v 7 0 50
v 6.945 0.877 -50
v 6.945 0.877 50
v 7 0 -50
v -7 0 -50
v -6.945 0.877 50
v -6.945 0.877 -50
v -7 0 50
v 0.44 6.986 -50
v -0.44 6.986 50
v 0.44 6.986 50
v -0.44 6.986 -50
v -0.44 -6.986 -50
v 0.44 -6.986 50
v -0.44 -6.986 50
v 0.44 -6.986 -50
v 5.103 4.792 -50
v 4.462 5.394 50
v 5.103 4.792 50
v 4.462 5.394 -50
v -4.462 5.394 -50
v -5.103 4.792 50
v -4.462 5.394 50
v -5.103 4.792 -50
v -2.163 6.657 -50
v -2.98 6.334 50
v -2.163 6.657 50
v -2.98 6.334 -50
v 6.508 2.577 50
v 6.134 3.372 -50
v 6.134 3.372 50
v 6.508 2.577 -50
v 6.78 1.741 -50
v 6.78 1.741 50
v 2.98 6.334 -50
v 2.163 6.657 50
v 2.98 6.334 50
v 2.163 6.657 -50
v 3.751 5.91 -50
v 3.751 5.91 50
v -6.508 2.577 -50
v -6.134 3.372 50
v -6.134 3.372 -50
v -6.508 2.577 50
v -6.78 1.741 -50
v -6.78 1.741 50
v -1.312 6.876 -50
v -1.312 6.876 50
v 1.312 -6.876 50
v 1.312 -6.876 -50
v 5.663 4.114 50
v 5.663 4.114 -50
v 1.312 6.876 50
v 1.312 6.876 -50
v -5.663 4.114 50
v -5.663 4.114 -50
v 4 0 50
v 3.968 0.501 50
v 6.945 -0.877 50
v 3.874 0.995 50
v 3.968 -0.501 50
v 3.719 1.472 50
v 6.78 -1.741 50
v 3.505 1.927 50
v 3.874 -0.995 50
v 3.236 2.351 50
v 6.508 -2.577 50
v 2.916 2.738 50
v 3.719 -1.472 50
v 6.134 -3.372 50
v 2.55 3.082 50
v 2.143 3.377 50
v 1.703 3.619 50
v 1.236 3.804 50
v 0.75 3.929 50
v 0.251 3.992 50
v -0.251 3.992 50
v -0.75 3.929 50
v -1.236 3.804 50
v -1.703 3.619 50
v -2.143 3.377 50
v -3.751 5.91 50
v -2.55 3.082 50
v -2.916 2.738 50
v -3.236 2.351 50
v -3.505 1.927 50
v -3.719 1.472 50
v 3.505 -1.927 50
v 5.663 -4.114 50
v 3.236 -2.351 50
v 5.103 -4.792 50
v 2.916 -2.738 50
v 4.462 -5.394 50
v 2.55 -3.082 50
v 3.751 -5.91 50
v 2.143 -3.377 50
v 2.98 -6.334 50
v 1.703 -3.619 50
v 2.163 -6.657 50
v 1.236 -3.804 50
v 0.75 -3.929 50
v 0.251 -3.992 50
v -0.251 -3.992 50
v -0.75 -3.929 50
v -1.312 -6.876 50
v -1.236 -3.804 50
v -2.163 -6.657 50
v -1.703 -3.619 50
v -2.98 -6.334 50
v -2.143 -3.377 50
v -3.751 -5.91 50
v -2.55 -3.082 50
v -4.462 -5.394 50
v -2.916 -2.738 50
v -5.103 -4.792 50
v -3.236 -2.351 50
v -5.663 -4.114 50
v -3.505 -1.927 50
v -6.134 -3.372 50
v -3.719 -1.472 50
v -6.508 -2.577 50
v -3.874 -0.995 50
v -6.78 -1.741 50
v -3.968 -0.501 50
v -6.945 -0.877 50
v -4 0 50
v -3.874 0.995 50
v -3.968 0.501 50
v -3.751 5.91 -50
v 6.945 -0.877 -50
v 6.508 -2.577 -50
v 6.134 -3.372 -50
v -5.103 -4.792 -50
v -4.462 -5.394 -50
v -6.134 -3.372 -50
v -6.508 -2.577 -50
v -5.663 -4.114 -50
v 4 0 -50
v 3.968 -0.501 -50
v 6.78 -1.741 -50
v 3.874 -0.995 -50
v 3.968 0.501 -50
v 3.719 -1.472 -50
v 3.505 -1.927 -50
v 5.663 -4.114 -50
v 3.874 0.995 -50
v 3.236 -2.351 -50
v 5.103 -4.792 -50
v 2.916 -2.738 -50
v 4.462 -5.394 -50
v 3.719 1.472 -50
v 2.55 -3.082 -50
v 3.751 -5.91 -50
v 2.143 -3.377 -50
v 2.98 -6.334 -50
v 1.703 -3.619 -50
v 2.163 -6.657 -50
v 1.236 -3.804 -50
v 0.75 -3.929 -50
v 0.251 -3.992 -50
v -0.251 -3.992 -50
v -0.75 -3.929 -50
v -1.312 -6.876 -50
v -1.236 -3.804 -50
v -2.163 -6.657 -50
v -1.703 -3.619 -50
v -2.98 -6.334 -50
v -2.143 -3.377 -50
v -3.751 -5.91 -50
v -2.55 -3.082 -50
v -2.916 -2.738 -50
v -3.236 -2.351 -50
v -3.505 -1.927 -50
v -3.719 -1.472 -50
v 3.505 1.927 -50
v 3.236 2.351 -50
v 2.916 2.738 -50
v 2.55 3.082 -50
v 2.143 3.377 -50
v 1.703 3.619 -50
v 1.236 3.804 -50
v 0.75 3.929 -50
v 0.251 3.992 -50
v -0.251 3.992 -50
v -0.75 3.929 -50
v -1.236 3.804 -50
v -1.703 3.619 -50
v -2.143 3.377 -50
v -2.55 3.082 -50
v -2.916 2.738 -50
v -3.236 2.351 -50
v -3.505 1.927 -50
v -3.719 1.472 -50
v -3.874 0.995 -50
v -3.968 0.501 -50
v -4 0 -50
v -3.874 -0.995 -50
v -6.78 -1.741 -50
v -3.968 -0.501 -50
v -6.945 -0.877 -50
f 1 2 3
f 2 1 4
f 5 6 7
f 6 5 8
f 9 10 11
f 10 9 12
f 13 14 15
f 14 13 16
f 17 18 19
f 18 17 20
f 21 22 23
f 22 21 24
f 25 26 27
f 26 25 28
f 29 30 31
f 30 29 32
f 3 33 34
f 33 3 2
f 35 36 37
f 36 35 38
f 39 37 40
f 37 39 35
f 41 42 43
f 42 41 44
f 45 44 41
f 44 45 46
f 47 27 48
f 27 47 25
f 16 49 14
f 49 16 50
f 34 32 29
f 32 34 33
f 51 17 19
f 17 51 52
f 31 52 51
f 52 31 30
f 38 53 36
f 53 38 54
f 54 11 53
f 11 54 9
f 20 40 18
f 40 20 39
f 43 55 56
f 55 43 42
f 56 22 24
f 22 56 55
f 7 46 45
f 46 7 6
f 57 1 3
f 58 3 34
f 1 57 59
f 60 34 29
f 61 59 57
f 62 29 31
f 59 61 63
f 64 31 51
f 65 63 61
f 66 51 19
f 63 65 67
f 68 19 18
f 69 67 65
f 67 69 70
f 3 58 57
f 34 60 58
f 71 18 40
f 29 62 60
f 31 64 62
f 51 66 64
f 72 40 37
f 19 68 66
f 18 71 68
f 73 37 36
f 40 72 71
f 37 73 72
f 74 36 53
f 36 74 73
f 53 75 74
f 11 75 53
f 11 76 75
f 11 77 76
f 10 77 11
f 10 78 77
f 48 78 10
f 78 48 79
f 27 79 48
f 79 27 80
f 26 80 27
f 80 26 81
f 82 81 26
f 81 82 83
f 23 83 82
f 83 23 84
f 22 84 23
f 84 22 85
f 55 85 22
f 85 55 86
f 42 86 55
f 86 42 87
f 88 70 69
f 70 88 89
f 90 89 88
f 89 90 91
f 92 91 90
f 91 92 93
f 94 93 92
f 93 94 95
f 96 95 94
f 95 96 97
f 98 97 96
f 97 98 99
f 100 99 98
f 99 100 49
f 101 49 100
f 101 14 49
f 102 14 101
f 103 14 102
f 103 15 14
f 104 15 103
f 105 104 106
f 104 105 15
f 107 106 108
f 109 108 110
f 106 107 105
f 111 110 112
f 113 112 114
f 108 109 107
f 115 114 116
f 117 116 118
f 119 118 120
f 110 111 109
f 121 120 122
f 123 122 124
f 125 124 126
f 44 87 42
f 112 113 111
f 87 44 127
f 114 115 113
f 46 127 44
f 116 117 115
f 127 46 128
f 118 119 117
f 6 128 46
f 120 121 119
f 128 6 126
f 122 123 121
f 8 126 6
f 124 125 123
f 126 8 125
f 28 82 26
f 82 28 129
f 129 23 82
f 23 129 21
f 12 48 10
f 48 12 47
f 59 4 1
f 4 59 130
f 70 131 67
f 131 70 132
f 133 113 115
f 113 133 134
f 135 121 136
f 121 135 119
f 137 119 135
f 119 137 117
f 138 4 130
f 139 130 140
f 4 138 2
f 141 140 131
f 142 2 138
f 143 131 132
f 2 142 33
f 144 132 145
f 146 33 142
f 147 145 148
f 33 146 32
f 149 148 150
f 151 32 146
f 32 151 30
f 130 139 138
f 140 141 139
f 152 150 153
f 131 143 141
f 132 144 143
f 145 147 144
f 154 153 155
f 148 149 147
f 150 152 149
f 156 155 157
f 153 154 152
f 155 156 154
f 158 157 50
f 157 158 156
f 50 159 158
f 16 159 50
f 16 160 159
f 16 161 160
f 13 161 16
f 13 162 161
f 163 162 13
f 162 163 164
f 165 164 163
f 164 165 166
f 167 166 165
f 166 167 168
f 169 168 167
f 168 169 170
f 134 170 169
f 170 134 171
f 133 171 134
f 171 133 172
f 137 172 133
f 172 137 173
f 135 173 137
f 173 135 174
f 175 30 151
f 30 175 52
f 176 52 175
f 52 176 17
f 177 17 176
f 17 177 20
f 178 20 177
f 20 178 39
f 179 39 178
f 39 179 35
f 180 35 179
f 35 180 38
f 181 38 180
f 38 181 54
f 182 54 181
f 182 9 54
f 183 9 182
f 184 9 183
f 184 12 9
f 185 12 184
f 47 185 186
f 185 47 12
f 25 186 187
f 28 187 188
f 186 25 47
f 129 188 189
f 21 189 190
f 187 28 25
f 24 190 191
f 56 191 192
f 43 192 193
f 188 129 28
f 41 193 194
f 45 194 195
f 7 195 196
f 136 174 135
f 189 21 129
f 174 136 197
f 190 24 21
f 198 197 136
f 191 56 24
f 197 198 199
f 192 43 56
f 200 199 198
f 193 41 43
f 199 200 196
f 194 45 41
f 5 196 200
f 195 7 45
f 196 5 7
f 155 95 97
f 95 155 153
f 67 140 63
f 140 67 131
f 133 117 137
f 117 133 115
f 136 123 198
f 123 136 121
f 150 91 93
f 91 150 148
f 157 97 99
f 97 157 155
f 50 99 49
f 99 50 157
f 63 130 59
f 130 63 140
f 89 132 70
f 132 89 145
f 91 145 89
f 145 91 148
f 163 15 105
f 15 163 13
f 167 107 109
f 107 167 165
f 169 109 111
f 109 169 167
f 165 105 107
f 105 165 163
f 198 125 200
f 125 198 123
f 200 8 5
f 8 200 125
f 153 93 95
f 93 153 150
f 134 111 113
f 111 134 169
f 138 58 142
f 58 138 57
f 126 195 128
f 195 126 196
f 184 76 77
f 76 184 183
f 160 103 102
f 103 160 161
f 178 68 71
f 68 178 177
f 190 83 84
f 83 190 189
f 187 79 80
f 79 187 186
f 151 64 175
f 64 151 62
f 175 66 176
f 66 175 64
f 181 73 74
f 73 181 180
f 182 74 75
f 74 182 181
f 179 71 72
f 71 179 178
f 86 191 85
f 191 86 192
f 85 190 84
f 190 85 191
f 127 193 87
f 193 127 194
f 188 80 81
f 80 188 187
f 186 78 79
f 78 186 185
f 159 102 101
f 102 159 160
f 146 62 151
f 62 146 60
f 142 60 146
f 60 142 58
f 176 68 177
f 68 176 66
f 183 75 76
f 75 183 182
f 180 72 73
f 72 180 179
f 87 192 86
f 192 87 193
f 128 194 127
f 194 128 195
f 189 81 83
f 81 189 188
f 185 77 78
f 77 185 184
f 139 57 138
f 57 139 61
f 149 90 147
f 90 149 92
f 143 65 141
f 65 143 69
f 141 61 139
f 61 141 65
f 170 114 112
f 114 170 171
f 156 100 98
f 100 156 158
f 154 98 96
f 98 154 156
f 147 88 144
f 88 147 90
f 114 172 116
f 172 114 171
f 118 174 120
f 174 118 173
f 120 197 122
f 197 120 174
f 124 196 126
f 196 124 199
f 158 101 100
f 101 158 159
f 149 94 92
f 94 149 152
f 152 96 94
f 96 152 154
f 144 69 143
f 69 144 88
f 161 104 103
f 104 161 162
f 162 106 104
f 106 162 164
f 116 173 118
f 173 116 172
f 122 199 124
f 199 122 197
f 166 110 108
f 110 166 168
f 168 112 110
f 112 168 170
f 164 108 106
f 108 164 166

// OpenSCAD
$fn = 50;


difference() {
	union() {
		translate(v = [0, 0, -50.0000000000]) {
			cylinder(h = 100, r = 7.0000000000);
		}
	}
	union() {
		translate(v = [0, 0, -100.0000000000]) {
			cylinder(h = 200, r = 4.0000000000);
		}
	}
}
